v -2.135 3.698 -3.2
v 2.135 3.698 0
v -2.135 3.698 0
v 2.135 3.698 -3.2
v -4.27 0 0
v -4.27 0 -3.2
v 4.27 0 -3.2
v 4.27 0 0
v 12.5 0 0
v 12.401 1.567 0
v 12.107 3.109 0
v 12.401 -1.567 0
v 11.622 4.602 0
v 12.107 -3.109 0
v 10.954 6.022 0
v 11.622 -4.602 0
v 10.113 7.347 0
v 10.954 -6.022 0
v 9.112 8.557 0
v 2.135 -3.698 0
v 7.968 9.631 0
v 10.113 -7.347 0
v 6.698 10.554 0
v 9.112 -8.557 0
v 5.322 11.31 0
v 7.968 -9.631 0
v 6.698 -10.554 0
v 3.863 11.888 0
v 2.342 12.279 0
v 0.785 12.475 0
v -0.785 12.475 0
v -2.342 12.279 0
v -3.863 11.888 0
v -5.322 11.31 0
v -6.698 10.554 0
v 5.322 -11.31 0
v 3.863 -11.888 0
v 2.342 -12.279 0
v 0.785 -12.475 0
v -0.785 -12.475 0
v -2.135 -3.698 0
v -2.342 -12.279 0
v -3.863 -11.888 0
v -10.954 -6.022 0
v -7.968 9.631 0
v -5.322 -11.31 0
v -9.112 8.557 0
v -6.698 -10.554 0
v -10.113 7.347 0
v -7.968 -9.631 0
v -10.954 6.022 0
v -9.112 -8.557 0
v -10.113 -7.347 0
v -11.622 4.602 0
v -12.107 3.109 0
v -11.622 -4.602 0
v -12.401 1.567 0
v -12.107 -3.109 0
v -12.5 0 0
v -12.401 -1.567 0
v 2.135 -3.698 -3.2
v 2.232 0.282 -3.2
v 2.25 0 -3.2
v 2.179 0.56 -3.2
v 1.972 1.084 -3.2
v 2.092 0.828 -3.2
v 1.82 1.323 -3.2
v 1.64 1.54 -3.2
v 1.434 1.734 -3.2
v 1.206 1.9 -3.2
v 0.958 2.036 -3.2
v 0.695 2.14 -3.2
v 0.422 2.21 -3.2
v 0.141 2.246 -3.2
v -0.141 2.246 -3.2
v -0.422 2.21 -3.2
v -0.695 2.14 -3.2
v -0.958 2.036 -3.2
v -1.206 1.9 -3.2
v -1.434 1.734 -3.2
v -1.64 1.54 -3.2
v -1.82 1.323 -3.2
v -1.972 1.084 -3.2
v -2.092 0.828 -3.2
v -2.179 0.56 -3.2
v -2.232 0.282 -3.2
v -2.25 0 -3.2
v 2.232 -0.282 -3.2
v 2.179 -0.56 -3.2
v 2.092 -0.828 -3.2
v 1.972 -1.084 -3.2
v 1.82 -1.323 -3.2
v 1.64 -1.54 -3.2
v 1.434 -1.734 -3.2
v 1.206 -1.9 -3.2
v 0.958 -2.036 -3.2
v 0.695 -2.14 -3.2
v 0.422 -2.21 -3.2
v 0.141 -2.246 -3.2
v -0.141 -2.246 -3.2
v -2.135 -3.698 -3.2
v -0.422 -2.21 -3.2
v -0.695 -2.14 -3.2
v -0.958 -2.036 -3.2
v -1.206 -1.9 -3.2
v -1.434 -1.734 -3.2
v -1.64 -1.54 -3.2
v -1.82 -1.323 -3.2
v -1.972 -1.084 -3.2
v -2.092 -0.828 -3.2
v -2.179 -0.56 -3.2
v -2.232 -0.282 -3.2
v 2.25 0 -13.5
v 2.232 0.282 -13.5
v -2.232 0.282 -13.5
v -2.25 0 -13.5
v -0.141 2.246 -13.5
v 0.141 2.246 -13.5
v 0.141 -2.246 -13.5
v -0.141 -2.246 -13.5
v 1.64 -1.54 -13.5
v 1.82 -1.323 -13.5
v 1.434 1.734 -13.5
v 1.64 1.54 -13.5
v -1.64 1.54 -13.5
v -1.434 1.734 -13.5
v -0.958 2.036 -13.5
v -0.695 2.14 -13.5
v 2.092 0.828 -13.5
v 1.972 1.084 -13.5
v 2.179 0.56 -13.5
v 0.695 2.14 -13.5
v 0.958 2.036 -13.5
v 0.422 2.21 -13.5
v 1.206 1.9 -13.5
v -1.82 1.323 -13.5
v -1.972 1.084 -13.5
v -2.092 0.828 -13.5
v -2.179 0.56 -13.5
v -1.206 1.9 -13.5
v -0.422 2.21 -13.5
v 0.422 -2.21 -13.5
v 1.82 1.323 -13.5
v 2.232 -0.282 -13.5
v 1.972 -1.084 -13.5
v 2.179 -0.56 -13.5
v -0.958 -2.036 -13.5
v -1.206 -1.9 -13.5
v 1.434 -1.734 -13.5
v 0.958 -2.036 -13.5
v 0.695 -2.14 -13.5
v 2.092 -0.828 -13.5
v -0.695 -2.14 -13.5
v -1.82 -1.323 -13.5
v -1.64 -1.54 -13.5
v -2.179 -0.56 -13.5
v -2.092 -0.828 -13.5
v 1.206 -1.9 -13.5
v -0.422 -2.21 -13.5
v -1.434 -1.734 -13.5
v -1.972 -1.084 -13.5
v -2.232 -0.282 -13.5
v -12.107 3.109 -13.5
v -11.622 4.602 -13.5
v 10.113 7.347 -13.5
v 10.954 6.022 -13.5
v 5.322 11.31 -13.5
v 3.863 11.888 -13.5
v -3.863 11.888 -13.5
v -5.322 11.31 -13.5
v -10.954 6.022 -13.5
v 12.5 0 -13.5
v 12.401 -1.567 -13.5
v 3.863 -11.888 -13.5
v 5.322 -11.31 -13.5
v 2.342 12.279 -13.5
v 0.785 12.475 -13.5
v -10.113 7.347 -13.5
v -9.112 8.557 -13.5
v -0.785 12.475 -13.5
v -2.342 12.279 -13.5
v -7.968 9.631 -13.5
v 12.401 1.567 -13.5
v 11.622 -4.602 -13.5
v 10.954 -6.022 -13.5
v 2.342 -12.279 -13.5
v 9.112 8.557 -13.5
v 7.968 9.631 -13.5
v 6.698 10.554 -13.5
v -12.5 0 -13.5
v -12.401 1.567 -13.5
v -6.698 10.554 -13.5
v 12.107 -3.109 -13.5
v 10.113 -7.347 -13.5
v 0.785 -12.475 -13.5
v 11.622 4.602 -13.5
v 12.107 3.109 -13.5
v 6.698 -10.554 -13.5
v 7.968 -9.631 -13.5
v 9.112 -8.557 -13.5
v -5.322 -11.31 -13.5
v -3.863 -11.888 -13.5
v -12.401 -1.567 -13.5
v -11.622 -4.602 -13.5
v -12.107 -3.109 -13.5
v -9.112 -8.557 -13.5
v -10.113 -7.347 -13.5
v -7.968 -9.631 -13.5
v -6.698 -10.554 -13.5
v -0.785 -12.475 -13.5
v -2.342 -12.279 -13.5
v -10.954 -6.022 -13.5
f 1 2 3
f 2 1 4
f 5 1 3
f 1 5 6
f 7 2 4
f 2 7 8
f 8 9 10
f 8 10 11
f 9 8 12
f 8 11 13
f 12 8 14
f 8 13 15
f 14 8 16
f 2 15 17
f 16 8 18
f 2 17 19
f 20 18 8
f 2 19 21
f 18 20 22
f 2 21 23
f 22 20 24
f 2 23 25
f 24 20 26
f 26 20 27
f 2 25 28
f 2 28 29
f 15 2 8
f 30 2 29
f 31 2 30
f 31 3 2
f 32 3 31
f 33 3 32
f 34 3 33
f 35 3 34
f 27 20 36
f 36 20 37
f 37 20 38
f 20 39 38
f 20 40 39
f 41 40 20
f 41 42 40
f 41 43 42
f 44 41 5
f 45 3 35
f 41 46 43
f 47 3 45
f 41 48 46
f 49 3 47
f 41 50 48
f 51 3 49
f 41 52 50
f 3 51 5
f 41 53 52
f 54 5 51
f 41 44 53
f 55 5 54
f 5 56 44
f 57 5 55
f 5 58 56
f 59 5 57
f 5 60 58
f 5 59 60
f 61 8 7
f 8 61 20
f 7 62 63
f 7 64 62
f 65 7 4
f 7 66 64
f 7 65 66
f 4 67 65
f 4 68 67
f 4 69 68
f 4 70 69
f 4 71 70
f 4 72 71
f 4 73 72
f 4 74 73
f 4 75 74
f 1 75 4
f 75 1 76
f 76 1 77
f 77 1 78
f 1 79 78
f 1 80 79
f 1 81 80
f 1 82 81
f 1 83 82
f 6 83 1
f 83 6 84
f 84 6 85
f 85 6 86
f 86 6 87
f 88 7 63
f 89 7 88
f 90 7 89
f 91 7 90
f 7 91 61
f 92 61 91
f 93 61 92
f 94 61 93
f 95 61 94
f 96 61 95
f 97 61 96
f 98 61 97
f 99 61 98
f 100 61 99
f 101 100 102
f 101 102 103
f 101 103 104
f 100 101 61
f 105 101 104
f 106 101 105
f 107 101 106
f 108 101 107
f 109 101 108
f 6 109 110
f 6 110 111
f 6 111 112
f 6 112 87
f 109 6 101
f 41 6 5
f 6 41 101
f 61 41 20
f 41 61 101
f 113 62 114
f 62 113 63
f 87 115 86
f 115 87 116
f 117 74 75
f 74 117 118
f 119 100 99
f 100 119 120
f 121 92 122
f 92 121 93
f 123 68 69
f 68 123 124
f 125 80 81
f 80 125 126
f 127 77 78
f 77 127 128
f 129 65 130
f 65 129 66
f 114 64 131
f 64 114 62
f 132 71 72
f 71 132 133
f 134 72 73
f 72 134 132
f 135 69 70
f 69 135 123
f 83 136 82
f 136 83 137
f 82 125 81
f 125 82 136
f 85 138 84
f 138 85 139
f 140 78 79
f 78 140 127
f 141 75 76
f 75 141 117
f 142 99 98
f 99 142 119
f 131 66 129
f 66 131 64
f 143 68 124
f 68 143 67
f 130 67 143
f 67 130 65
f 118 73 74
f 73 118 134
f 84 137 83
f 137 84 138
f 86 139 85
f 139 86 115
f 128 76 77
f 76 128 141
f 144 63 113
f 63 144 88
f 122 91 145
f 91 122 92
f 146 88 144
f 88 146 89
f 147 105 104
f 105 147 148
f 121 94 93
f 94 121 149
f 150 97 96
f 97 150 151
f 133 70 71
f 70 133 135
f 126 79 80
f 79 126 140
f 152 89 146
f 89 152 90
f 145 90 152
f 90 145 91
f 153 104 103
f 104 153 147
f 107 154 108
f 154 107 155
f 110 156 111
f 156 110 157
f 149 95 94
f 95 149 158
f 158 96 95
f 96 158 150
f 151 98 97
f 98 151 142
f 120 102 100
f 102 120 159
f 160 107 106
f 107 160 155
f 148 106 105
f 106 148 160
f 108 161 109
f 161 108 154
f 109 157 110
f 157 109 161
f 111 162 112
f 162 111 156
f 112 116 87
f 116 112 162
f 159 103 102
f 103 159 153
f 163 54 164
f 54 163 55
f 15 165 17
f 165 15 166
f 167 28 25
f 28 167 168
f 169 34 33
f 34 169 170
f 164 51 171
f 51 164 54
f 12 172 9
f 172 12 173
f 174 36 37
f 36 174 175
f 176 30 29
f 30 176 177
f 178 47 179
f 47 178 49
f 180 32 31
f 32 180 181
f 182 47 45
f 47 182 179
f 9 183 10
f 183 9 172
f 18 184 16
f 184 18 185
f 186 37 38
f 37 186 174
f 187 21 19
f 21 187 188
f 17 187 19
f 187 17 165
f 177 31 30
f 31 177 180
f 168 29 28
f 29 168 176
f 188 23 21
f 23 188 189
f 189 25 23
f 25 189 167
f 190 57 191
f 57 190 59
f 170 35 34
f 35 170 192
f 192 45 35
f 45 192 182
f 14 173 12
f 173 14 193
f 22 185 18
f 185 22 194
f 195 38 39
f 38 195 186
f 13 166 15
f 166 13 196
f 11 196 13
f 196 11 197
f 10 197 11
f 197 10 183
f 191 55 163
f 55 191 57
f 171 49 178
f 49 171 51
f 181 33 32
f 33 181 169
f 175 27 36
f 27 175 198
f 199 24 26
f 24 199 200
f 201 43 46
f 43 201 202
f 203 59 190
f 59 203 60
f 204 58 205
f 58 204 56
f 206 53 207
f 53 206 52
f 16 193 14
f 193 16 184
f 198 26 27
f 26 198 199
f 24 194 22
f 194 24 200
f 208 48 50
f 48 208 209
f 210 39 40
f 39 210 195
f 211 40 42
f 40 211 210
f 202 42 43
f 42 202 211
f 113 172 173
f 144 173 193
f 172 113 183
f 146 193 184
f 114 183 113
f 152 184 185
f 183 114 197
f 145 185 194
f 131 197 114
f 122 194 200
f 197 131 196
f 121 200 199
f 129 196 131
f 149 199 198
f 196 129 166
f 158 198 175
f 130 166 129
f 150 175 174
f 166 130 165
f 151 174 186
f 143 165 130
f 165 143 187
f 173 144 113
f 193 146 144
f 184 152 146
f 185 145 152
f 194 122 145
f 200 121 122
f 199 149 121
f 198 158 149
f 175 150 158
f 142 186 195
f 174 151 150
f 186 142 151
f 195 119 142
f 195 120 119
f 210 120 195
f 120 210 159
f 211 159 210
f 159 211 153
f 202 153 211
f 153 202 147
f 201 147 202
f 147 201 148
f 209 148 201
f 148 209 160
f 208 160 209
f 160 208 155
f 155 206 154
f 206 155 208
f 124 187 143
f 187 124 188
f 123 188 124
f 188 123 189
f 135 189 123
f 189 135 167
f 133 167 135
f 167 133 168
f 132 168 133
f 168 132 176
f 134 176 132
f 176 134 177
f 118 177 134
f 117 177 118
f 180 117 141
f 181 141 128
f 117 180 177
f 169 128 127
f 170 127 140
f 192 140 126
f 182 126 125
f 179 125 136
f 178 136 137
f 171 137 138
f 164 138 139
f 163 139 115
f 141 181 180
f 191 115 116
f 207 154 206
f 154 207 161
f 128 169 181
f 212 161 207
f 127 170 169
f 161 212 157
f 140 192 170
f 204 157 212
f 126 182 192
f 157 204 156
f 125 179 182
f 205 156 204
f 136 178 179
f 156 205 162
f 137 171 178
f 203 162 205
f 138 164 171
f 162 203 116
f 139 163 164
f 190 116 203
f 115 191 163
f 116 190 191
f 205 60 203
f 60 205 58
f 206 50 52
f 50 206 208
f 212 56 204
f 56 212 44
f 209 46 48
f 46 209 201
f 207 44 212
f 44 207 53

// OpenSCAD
$fn = 50;

difference() {
	union() {
		translate(v = [0, 0, -13.5]) {
			cylinder(h = 13.5, r = 12.5);
		}
	}
	union() {
		translate(v = [0, 0, 0]) {
			rotate(a = [0, 0, 0]) {
				difference() {
					union() {
						translate(v = [0, 0, -3.2]) {
							linear_extrude(height = 3.2) {
								polygon(points = [[4.2698, 0.0], [2.1349000000000005, 3.697755269078796], [-2.134899999999999, 3.6977552690787965], [-4.2698, 5.228996902999369e-16], [-2.134900000000002, -3.6977552690787956], [2.1348999999999974, -3.697755269078798]]);
							}
						}
					}
					union();
				}
			}
		}
		#translate(v = [0, 0, -100.0]) {
			cylinder(h = 200, r = 2.25);
		}
	}
}
